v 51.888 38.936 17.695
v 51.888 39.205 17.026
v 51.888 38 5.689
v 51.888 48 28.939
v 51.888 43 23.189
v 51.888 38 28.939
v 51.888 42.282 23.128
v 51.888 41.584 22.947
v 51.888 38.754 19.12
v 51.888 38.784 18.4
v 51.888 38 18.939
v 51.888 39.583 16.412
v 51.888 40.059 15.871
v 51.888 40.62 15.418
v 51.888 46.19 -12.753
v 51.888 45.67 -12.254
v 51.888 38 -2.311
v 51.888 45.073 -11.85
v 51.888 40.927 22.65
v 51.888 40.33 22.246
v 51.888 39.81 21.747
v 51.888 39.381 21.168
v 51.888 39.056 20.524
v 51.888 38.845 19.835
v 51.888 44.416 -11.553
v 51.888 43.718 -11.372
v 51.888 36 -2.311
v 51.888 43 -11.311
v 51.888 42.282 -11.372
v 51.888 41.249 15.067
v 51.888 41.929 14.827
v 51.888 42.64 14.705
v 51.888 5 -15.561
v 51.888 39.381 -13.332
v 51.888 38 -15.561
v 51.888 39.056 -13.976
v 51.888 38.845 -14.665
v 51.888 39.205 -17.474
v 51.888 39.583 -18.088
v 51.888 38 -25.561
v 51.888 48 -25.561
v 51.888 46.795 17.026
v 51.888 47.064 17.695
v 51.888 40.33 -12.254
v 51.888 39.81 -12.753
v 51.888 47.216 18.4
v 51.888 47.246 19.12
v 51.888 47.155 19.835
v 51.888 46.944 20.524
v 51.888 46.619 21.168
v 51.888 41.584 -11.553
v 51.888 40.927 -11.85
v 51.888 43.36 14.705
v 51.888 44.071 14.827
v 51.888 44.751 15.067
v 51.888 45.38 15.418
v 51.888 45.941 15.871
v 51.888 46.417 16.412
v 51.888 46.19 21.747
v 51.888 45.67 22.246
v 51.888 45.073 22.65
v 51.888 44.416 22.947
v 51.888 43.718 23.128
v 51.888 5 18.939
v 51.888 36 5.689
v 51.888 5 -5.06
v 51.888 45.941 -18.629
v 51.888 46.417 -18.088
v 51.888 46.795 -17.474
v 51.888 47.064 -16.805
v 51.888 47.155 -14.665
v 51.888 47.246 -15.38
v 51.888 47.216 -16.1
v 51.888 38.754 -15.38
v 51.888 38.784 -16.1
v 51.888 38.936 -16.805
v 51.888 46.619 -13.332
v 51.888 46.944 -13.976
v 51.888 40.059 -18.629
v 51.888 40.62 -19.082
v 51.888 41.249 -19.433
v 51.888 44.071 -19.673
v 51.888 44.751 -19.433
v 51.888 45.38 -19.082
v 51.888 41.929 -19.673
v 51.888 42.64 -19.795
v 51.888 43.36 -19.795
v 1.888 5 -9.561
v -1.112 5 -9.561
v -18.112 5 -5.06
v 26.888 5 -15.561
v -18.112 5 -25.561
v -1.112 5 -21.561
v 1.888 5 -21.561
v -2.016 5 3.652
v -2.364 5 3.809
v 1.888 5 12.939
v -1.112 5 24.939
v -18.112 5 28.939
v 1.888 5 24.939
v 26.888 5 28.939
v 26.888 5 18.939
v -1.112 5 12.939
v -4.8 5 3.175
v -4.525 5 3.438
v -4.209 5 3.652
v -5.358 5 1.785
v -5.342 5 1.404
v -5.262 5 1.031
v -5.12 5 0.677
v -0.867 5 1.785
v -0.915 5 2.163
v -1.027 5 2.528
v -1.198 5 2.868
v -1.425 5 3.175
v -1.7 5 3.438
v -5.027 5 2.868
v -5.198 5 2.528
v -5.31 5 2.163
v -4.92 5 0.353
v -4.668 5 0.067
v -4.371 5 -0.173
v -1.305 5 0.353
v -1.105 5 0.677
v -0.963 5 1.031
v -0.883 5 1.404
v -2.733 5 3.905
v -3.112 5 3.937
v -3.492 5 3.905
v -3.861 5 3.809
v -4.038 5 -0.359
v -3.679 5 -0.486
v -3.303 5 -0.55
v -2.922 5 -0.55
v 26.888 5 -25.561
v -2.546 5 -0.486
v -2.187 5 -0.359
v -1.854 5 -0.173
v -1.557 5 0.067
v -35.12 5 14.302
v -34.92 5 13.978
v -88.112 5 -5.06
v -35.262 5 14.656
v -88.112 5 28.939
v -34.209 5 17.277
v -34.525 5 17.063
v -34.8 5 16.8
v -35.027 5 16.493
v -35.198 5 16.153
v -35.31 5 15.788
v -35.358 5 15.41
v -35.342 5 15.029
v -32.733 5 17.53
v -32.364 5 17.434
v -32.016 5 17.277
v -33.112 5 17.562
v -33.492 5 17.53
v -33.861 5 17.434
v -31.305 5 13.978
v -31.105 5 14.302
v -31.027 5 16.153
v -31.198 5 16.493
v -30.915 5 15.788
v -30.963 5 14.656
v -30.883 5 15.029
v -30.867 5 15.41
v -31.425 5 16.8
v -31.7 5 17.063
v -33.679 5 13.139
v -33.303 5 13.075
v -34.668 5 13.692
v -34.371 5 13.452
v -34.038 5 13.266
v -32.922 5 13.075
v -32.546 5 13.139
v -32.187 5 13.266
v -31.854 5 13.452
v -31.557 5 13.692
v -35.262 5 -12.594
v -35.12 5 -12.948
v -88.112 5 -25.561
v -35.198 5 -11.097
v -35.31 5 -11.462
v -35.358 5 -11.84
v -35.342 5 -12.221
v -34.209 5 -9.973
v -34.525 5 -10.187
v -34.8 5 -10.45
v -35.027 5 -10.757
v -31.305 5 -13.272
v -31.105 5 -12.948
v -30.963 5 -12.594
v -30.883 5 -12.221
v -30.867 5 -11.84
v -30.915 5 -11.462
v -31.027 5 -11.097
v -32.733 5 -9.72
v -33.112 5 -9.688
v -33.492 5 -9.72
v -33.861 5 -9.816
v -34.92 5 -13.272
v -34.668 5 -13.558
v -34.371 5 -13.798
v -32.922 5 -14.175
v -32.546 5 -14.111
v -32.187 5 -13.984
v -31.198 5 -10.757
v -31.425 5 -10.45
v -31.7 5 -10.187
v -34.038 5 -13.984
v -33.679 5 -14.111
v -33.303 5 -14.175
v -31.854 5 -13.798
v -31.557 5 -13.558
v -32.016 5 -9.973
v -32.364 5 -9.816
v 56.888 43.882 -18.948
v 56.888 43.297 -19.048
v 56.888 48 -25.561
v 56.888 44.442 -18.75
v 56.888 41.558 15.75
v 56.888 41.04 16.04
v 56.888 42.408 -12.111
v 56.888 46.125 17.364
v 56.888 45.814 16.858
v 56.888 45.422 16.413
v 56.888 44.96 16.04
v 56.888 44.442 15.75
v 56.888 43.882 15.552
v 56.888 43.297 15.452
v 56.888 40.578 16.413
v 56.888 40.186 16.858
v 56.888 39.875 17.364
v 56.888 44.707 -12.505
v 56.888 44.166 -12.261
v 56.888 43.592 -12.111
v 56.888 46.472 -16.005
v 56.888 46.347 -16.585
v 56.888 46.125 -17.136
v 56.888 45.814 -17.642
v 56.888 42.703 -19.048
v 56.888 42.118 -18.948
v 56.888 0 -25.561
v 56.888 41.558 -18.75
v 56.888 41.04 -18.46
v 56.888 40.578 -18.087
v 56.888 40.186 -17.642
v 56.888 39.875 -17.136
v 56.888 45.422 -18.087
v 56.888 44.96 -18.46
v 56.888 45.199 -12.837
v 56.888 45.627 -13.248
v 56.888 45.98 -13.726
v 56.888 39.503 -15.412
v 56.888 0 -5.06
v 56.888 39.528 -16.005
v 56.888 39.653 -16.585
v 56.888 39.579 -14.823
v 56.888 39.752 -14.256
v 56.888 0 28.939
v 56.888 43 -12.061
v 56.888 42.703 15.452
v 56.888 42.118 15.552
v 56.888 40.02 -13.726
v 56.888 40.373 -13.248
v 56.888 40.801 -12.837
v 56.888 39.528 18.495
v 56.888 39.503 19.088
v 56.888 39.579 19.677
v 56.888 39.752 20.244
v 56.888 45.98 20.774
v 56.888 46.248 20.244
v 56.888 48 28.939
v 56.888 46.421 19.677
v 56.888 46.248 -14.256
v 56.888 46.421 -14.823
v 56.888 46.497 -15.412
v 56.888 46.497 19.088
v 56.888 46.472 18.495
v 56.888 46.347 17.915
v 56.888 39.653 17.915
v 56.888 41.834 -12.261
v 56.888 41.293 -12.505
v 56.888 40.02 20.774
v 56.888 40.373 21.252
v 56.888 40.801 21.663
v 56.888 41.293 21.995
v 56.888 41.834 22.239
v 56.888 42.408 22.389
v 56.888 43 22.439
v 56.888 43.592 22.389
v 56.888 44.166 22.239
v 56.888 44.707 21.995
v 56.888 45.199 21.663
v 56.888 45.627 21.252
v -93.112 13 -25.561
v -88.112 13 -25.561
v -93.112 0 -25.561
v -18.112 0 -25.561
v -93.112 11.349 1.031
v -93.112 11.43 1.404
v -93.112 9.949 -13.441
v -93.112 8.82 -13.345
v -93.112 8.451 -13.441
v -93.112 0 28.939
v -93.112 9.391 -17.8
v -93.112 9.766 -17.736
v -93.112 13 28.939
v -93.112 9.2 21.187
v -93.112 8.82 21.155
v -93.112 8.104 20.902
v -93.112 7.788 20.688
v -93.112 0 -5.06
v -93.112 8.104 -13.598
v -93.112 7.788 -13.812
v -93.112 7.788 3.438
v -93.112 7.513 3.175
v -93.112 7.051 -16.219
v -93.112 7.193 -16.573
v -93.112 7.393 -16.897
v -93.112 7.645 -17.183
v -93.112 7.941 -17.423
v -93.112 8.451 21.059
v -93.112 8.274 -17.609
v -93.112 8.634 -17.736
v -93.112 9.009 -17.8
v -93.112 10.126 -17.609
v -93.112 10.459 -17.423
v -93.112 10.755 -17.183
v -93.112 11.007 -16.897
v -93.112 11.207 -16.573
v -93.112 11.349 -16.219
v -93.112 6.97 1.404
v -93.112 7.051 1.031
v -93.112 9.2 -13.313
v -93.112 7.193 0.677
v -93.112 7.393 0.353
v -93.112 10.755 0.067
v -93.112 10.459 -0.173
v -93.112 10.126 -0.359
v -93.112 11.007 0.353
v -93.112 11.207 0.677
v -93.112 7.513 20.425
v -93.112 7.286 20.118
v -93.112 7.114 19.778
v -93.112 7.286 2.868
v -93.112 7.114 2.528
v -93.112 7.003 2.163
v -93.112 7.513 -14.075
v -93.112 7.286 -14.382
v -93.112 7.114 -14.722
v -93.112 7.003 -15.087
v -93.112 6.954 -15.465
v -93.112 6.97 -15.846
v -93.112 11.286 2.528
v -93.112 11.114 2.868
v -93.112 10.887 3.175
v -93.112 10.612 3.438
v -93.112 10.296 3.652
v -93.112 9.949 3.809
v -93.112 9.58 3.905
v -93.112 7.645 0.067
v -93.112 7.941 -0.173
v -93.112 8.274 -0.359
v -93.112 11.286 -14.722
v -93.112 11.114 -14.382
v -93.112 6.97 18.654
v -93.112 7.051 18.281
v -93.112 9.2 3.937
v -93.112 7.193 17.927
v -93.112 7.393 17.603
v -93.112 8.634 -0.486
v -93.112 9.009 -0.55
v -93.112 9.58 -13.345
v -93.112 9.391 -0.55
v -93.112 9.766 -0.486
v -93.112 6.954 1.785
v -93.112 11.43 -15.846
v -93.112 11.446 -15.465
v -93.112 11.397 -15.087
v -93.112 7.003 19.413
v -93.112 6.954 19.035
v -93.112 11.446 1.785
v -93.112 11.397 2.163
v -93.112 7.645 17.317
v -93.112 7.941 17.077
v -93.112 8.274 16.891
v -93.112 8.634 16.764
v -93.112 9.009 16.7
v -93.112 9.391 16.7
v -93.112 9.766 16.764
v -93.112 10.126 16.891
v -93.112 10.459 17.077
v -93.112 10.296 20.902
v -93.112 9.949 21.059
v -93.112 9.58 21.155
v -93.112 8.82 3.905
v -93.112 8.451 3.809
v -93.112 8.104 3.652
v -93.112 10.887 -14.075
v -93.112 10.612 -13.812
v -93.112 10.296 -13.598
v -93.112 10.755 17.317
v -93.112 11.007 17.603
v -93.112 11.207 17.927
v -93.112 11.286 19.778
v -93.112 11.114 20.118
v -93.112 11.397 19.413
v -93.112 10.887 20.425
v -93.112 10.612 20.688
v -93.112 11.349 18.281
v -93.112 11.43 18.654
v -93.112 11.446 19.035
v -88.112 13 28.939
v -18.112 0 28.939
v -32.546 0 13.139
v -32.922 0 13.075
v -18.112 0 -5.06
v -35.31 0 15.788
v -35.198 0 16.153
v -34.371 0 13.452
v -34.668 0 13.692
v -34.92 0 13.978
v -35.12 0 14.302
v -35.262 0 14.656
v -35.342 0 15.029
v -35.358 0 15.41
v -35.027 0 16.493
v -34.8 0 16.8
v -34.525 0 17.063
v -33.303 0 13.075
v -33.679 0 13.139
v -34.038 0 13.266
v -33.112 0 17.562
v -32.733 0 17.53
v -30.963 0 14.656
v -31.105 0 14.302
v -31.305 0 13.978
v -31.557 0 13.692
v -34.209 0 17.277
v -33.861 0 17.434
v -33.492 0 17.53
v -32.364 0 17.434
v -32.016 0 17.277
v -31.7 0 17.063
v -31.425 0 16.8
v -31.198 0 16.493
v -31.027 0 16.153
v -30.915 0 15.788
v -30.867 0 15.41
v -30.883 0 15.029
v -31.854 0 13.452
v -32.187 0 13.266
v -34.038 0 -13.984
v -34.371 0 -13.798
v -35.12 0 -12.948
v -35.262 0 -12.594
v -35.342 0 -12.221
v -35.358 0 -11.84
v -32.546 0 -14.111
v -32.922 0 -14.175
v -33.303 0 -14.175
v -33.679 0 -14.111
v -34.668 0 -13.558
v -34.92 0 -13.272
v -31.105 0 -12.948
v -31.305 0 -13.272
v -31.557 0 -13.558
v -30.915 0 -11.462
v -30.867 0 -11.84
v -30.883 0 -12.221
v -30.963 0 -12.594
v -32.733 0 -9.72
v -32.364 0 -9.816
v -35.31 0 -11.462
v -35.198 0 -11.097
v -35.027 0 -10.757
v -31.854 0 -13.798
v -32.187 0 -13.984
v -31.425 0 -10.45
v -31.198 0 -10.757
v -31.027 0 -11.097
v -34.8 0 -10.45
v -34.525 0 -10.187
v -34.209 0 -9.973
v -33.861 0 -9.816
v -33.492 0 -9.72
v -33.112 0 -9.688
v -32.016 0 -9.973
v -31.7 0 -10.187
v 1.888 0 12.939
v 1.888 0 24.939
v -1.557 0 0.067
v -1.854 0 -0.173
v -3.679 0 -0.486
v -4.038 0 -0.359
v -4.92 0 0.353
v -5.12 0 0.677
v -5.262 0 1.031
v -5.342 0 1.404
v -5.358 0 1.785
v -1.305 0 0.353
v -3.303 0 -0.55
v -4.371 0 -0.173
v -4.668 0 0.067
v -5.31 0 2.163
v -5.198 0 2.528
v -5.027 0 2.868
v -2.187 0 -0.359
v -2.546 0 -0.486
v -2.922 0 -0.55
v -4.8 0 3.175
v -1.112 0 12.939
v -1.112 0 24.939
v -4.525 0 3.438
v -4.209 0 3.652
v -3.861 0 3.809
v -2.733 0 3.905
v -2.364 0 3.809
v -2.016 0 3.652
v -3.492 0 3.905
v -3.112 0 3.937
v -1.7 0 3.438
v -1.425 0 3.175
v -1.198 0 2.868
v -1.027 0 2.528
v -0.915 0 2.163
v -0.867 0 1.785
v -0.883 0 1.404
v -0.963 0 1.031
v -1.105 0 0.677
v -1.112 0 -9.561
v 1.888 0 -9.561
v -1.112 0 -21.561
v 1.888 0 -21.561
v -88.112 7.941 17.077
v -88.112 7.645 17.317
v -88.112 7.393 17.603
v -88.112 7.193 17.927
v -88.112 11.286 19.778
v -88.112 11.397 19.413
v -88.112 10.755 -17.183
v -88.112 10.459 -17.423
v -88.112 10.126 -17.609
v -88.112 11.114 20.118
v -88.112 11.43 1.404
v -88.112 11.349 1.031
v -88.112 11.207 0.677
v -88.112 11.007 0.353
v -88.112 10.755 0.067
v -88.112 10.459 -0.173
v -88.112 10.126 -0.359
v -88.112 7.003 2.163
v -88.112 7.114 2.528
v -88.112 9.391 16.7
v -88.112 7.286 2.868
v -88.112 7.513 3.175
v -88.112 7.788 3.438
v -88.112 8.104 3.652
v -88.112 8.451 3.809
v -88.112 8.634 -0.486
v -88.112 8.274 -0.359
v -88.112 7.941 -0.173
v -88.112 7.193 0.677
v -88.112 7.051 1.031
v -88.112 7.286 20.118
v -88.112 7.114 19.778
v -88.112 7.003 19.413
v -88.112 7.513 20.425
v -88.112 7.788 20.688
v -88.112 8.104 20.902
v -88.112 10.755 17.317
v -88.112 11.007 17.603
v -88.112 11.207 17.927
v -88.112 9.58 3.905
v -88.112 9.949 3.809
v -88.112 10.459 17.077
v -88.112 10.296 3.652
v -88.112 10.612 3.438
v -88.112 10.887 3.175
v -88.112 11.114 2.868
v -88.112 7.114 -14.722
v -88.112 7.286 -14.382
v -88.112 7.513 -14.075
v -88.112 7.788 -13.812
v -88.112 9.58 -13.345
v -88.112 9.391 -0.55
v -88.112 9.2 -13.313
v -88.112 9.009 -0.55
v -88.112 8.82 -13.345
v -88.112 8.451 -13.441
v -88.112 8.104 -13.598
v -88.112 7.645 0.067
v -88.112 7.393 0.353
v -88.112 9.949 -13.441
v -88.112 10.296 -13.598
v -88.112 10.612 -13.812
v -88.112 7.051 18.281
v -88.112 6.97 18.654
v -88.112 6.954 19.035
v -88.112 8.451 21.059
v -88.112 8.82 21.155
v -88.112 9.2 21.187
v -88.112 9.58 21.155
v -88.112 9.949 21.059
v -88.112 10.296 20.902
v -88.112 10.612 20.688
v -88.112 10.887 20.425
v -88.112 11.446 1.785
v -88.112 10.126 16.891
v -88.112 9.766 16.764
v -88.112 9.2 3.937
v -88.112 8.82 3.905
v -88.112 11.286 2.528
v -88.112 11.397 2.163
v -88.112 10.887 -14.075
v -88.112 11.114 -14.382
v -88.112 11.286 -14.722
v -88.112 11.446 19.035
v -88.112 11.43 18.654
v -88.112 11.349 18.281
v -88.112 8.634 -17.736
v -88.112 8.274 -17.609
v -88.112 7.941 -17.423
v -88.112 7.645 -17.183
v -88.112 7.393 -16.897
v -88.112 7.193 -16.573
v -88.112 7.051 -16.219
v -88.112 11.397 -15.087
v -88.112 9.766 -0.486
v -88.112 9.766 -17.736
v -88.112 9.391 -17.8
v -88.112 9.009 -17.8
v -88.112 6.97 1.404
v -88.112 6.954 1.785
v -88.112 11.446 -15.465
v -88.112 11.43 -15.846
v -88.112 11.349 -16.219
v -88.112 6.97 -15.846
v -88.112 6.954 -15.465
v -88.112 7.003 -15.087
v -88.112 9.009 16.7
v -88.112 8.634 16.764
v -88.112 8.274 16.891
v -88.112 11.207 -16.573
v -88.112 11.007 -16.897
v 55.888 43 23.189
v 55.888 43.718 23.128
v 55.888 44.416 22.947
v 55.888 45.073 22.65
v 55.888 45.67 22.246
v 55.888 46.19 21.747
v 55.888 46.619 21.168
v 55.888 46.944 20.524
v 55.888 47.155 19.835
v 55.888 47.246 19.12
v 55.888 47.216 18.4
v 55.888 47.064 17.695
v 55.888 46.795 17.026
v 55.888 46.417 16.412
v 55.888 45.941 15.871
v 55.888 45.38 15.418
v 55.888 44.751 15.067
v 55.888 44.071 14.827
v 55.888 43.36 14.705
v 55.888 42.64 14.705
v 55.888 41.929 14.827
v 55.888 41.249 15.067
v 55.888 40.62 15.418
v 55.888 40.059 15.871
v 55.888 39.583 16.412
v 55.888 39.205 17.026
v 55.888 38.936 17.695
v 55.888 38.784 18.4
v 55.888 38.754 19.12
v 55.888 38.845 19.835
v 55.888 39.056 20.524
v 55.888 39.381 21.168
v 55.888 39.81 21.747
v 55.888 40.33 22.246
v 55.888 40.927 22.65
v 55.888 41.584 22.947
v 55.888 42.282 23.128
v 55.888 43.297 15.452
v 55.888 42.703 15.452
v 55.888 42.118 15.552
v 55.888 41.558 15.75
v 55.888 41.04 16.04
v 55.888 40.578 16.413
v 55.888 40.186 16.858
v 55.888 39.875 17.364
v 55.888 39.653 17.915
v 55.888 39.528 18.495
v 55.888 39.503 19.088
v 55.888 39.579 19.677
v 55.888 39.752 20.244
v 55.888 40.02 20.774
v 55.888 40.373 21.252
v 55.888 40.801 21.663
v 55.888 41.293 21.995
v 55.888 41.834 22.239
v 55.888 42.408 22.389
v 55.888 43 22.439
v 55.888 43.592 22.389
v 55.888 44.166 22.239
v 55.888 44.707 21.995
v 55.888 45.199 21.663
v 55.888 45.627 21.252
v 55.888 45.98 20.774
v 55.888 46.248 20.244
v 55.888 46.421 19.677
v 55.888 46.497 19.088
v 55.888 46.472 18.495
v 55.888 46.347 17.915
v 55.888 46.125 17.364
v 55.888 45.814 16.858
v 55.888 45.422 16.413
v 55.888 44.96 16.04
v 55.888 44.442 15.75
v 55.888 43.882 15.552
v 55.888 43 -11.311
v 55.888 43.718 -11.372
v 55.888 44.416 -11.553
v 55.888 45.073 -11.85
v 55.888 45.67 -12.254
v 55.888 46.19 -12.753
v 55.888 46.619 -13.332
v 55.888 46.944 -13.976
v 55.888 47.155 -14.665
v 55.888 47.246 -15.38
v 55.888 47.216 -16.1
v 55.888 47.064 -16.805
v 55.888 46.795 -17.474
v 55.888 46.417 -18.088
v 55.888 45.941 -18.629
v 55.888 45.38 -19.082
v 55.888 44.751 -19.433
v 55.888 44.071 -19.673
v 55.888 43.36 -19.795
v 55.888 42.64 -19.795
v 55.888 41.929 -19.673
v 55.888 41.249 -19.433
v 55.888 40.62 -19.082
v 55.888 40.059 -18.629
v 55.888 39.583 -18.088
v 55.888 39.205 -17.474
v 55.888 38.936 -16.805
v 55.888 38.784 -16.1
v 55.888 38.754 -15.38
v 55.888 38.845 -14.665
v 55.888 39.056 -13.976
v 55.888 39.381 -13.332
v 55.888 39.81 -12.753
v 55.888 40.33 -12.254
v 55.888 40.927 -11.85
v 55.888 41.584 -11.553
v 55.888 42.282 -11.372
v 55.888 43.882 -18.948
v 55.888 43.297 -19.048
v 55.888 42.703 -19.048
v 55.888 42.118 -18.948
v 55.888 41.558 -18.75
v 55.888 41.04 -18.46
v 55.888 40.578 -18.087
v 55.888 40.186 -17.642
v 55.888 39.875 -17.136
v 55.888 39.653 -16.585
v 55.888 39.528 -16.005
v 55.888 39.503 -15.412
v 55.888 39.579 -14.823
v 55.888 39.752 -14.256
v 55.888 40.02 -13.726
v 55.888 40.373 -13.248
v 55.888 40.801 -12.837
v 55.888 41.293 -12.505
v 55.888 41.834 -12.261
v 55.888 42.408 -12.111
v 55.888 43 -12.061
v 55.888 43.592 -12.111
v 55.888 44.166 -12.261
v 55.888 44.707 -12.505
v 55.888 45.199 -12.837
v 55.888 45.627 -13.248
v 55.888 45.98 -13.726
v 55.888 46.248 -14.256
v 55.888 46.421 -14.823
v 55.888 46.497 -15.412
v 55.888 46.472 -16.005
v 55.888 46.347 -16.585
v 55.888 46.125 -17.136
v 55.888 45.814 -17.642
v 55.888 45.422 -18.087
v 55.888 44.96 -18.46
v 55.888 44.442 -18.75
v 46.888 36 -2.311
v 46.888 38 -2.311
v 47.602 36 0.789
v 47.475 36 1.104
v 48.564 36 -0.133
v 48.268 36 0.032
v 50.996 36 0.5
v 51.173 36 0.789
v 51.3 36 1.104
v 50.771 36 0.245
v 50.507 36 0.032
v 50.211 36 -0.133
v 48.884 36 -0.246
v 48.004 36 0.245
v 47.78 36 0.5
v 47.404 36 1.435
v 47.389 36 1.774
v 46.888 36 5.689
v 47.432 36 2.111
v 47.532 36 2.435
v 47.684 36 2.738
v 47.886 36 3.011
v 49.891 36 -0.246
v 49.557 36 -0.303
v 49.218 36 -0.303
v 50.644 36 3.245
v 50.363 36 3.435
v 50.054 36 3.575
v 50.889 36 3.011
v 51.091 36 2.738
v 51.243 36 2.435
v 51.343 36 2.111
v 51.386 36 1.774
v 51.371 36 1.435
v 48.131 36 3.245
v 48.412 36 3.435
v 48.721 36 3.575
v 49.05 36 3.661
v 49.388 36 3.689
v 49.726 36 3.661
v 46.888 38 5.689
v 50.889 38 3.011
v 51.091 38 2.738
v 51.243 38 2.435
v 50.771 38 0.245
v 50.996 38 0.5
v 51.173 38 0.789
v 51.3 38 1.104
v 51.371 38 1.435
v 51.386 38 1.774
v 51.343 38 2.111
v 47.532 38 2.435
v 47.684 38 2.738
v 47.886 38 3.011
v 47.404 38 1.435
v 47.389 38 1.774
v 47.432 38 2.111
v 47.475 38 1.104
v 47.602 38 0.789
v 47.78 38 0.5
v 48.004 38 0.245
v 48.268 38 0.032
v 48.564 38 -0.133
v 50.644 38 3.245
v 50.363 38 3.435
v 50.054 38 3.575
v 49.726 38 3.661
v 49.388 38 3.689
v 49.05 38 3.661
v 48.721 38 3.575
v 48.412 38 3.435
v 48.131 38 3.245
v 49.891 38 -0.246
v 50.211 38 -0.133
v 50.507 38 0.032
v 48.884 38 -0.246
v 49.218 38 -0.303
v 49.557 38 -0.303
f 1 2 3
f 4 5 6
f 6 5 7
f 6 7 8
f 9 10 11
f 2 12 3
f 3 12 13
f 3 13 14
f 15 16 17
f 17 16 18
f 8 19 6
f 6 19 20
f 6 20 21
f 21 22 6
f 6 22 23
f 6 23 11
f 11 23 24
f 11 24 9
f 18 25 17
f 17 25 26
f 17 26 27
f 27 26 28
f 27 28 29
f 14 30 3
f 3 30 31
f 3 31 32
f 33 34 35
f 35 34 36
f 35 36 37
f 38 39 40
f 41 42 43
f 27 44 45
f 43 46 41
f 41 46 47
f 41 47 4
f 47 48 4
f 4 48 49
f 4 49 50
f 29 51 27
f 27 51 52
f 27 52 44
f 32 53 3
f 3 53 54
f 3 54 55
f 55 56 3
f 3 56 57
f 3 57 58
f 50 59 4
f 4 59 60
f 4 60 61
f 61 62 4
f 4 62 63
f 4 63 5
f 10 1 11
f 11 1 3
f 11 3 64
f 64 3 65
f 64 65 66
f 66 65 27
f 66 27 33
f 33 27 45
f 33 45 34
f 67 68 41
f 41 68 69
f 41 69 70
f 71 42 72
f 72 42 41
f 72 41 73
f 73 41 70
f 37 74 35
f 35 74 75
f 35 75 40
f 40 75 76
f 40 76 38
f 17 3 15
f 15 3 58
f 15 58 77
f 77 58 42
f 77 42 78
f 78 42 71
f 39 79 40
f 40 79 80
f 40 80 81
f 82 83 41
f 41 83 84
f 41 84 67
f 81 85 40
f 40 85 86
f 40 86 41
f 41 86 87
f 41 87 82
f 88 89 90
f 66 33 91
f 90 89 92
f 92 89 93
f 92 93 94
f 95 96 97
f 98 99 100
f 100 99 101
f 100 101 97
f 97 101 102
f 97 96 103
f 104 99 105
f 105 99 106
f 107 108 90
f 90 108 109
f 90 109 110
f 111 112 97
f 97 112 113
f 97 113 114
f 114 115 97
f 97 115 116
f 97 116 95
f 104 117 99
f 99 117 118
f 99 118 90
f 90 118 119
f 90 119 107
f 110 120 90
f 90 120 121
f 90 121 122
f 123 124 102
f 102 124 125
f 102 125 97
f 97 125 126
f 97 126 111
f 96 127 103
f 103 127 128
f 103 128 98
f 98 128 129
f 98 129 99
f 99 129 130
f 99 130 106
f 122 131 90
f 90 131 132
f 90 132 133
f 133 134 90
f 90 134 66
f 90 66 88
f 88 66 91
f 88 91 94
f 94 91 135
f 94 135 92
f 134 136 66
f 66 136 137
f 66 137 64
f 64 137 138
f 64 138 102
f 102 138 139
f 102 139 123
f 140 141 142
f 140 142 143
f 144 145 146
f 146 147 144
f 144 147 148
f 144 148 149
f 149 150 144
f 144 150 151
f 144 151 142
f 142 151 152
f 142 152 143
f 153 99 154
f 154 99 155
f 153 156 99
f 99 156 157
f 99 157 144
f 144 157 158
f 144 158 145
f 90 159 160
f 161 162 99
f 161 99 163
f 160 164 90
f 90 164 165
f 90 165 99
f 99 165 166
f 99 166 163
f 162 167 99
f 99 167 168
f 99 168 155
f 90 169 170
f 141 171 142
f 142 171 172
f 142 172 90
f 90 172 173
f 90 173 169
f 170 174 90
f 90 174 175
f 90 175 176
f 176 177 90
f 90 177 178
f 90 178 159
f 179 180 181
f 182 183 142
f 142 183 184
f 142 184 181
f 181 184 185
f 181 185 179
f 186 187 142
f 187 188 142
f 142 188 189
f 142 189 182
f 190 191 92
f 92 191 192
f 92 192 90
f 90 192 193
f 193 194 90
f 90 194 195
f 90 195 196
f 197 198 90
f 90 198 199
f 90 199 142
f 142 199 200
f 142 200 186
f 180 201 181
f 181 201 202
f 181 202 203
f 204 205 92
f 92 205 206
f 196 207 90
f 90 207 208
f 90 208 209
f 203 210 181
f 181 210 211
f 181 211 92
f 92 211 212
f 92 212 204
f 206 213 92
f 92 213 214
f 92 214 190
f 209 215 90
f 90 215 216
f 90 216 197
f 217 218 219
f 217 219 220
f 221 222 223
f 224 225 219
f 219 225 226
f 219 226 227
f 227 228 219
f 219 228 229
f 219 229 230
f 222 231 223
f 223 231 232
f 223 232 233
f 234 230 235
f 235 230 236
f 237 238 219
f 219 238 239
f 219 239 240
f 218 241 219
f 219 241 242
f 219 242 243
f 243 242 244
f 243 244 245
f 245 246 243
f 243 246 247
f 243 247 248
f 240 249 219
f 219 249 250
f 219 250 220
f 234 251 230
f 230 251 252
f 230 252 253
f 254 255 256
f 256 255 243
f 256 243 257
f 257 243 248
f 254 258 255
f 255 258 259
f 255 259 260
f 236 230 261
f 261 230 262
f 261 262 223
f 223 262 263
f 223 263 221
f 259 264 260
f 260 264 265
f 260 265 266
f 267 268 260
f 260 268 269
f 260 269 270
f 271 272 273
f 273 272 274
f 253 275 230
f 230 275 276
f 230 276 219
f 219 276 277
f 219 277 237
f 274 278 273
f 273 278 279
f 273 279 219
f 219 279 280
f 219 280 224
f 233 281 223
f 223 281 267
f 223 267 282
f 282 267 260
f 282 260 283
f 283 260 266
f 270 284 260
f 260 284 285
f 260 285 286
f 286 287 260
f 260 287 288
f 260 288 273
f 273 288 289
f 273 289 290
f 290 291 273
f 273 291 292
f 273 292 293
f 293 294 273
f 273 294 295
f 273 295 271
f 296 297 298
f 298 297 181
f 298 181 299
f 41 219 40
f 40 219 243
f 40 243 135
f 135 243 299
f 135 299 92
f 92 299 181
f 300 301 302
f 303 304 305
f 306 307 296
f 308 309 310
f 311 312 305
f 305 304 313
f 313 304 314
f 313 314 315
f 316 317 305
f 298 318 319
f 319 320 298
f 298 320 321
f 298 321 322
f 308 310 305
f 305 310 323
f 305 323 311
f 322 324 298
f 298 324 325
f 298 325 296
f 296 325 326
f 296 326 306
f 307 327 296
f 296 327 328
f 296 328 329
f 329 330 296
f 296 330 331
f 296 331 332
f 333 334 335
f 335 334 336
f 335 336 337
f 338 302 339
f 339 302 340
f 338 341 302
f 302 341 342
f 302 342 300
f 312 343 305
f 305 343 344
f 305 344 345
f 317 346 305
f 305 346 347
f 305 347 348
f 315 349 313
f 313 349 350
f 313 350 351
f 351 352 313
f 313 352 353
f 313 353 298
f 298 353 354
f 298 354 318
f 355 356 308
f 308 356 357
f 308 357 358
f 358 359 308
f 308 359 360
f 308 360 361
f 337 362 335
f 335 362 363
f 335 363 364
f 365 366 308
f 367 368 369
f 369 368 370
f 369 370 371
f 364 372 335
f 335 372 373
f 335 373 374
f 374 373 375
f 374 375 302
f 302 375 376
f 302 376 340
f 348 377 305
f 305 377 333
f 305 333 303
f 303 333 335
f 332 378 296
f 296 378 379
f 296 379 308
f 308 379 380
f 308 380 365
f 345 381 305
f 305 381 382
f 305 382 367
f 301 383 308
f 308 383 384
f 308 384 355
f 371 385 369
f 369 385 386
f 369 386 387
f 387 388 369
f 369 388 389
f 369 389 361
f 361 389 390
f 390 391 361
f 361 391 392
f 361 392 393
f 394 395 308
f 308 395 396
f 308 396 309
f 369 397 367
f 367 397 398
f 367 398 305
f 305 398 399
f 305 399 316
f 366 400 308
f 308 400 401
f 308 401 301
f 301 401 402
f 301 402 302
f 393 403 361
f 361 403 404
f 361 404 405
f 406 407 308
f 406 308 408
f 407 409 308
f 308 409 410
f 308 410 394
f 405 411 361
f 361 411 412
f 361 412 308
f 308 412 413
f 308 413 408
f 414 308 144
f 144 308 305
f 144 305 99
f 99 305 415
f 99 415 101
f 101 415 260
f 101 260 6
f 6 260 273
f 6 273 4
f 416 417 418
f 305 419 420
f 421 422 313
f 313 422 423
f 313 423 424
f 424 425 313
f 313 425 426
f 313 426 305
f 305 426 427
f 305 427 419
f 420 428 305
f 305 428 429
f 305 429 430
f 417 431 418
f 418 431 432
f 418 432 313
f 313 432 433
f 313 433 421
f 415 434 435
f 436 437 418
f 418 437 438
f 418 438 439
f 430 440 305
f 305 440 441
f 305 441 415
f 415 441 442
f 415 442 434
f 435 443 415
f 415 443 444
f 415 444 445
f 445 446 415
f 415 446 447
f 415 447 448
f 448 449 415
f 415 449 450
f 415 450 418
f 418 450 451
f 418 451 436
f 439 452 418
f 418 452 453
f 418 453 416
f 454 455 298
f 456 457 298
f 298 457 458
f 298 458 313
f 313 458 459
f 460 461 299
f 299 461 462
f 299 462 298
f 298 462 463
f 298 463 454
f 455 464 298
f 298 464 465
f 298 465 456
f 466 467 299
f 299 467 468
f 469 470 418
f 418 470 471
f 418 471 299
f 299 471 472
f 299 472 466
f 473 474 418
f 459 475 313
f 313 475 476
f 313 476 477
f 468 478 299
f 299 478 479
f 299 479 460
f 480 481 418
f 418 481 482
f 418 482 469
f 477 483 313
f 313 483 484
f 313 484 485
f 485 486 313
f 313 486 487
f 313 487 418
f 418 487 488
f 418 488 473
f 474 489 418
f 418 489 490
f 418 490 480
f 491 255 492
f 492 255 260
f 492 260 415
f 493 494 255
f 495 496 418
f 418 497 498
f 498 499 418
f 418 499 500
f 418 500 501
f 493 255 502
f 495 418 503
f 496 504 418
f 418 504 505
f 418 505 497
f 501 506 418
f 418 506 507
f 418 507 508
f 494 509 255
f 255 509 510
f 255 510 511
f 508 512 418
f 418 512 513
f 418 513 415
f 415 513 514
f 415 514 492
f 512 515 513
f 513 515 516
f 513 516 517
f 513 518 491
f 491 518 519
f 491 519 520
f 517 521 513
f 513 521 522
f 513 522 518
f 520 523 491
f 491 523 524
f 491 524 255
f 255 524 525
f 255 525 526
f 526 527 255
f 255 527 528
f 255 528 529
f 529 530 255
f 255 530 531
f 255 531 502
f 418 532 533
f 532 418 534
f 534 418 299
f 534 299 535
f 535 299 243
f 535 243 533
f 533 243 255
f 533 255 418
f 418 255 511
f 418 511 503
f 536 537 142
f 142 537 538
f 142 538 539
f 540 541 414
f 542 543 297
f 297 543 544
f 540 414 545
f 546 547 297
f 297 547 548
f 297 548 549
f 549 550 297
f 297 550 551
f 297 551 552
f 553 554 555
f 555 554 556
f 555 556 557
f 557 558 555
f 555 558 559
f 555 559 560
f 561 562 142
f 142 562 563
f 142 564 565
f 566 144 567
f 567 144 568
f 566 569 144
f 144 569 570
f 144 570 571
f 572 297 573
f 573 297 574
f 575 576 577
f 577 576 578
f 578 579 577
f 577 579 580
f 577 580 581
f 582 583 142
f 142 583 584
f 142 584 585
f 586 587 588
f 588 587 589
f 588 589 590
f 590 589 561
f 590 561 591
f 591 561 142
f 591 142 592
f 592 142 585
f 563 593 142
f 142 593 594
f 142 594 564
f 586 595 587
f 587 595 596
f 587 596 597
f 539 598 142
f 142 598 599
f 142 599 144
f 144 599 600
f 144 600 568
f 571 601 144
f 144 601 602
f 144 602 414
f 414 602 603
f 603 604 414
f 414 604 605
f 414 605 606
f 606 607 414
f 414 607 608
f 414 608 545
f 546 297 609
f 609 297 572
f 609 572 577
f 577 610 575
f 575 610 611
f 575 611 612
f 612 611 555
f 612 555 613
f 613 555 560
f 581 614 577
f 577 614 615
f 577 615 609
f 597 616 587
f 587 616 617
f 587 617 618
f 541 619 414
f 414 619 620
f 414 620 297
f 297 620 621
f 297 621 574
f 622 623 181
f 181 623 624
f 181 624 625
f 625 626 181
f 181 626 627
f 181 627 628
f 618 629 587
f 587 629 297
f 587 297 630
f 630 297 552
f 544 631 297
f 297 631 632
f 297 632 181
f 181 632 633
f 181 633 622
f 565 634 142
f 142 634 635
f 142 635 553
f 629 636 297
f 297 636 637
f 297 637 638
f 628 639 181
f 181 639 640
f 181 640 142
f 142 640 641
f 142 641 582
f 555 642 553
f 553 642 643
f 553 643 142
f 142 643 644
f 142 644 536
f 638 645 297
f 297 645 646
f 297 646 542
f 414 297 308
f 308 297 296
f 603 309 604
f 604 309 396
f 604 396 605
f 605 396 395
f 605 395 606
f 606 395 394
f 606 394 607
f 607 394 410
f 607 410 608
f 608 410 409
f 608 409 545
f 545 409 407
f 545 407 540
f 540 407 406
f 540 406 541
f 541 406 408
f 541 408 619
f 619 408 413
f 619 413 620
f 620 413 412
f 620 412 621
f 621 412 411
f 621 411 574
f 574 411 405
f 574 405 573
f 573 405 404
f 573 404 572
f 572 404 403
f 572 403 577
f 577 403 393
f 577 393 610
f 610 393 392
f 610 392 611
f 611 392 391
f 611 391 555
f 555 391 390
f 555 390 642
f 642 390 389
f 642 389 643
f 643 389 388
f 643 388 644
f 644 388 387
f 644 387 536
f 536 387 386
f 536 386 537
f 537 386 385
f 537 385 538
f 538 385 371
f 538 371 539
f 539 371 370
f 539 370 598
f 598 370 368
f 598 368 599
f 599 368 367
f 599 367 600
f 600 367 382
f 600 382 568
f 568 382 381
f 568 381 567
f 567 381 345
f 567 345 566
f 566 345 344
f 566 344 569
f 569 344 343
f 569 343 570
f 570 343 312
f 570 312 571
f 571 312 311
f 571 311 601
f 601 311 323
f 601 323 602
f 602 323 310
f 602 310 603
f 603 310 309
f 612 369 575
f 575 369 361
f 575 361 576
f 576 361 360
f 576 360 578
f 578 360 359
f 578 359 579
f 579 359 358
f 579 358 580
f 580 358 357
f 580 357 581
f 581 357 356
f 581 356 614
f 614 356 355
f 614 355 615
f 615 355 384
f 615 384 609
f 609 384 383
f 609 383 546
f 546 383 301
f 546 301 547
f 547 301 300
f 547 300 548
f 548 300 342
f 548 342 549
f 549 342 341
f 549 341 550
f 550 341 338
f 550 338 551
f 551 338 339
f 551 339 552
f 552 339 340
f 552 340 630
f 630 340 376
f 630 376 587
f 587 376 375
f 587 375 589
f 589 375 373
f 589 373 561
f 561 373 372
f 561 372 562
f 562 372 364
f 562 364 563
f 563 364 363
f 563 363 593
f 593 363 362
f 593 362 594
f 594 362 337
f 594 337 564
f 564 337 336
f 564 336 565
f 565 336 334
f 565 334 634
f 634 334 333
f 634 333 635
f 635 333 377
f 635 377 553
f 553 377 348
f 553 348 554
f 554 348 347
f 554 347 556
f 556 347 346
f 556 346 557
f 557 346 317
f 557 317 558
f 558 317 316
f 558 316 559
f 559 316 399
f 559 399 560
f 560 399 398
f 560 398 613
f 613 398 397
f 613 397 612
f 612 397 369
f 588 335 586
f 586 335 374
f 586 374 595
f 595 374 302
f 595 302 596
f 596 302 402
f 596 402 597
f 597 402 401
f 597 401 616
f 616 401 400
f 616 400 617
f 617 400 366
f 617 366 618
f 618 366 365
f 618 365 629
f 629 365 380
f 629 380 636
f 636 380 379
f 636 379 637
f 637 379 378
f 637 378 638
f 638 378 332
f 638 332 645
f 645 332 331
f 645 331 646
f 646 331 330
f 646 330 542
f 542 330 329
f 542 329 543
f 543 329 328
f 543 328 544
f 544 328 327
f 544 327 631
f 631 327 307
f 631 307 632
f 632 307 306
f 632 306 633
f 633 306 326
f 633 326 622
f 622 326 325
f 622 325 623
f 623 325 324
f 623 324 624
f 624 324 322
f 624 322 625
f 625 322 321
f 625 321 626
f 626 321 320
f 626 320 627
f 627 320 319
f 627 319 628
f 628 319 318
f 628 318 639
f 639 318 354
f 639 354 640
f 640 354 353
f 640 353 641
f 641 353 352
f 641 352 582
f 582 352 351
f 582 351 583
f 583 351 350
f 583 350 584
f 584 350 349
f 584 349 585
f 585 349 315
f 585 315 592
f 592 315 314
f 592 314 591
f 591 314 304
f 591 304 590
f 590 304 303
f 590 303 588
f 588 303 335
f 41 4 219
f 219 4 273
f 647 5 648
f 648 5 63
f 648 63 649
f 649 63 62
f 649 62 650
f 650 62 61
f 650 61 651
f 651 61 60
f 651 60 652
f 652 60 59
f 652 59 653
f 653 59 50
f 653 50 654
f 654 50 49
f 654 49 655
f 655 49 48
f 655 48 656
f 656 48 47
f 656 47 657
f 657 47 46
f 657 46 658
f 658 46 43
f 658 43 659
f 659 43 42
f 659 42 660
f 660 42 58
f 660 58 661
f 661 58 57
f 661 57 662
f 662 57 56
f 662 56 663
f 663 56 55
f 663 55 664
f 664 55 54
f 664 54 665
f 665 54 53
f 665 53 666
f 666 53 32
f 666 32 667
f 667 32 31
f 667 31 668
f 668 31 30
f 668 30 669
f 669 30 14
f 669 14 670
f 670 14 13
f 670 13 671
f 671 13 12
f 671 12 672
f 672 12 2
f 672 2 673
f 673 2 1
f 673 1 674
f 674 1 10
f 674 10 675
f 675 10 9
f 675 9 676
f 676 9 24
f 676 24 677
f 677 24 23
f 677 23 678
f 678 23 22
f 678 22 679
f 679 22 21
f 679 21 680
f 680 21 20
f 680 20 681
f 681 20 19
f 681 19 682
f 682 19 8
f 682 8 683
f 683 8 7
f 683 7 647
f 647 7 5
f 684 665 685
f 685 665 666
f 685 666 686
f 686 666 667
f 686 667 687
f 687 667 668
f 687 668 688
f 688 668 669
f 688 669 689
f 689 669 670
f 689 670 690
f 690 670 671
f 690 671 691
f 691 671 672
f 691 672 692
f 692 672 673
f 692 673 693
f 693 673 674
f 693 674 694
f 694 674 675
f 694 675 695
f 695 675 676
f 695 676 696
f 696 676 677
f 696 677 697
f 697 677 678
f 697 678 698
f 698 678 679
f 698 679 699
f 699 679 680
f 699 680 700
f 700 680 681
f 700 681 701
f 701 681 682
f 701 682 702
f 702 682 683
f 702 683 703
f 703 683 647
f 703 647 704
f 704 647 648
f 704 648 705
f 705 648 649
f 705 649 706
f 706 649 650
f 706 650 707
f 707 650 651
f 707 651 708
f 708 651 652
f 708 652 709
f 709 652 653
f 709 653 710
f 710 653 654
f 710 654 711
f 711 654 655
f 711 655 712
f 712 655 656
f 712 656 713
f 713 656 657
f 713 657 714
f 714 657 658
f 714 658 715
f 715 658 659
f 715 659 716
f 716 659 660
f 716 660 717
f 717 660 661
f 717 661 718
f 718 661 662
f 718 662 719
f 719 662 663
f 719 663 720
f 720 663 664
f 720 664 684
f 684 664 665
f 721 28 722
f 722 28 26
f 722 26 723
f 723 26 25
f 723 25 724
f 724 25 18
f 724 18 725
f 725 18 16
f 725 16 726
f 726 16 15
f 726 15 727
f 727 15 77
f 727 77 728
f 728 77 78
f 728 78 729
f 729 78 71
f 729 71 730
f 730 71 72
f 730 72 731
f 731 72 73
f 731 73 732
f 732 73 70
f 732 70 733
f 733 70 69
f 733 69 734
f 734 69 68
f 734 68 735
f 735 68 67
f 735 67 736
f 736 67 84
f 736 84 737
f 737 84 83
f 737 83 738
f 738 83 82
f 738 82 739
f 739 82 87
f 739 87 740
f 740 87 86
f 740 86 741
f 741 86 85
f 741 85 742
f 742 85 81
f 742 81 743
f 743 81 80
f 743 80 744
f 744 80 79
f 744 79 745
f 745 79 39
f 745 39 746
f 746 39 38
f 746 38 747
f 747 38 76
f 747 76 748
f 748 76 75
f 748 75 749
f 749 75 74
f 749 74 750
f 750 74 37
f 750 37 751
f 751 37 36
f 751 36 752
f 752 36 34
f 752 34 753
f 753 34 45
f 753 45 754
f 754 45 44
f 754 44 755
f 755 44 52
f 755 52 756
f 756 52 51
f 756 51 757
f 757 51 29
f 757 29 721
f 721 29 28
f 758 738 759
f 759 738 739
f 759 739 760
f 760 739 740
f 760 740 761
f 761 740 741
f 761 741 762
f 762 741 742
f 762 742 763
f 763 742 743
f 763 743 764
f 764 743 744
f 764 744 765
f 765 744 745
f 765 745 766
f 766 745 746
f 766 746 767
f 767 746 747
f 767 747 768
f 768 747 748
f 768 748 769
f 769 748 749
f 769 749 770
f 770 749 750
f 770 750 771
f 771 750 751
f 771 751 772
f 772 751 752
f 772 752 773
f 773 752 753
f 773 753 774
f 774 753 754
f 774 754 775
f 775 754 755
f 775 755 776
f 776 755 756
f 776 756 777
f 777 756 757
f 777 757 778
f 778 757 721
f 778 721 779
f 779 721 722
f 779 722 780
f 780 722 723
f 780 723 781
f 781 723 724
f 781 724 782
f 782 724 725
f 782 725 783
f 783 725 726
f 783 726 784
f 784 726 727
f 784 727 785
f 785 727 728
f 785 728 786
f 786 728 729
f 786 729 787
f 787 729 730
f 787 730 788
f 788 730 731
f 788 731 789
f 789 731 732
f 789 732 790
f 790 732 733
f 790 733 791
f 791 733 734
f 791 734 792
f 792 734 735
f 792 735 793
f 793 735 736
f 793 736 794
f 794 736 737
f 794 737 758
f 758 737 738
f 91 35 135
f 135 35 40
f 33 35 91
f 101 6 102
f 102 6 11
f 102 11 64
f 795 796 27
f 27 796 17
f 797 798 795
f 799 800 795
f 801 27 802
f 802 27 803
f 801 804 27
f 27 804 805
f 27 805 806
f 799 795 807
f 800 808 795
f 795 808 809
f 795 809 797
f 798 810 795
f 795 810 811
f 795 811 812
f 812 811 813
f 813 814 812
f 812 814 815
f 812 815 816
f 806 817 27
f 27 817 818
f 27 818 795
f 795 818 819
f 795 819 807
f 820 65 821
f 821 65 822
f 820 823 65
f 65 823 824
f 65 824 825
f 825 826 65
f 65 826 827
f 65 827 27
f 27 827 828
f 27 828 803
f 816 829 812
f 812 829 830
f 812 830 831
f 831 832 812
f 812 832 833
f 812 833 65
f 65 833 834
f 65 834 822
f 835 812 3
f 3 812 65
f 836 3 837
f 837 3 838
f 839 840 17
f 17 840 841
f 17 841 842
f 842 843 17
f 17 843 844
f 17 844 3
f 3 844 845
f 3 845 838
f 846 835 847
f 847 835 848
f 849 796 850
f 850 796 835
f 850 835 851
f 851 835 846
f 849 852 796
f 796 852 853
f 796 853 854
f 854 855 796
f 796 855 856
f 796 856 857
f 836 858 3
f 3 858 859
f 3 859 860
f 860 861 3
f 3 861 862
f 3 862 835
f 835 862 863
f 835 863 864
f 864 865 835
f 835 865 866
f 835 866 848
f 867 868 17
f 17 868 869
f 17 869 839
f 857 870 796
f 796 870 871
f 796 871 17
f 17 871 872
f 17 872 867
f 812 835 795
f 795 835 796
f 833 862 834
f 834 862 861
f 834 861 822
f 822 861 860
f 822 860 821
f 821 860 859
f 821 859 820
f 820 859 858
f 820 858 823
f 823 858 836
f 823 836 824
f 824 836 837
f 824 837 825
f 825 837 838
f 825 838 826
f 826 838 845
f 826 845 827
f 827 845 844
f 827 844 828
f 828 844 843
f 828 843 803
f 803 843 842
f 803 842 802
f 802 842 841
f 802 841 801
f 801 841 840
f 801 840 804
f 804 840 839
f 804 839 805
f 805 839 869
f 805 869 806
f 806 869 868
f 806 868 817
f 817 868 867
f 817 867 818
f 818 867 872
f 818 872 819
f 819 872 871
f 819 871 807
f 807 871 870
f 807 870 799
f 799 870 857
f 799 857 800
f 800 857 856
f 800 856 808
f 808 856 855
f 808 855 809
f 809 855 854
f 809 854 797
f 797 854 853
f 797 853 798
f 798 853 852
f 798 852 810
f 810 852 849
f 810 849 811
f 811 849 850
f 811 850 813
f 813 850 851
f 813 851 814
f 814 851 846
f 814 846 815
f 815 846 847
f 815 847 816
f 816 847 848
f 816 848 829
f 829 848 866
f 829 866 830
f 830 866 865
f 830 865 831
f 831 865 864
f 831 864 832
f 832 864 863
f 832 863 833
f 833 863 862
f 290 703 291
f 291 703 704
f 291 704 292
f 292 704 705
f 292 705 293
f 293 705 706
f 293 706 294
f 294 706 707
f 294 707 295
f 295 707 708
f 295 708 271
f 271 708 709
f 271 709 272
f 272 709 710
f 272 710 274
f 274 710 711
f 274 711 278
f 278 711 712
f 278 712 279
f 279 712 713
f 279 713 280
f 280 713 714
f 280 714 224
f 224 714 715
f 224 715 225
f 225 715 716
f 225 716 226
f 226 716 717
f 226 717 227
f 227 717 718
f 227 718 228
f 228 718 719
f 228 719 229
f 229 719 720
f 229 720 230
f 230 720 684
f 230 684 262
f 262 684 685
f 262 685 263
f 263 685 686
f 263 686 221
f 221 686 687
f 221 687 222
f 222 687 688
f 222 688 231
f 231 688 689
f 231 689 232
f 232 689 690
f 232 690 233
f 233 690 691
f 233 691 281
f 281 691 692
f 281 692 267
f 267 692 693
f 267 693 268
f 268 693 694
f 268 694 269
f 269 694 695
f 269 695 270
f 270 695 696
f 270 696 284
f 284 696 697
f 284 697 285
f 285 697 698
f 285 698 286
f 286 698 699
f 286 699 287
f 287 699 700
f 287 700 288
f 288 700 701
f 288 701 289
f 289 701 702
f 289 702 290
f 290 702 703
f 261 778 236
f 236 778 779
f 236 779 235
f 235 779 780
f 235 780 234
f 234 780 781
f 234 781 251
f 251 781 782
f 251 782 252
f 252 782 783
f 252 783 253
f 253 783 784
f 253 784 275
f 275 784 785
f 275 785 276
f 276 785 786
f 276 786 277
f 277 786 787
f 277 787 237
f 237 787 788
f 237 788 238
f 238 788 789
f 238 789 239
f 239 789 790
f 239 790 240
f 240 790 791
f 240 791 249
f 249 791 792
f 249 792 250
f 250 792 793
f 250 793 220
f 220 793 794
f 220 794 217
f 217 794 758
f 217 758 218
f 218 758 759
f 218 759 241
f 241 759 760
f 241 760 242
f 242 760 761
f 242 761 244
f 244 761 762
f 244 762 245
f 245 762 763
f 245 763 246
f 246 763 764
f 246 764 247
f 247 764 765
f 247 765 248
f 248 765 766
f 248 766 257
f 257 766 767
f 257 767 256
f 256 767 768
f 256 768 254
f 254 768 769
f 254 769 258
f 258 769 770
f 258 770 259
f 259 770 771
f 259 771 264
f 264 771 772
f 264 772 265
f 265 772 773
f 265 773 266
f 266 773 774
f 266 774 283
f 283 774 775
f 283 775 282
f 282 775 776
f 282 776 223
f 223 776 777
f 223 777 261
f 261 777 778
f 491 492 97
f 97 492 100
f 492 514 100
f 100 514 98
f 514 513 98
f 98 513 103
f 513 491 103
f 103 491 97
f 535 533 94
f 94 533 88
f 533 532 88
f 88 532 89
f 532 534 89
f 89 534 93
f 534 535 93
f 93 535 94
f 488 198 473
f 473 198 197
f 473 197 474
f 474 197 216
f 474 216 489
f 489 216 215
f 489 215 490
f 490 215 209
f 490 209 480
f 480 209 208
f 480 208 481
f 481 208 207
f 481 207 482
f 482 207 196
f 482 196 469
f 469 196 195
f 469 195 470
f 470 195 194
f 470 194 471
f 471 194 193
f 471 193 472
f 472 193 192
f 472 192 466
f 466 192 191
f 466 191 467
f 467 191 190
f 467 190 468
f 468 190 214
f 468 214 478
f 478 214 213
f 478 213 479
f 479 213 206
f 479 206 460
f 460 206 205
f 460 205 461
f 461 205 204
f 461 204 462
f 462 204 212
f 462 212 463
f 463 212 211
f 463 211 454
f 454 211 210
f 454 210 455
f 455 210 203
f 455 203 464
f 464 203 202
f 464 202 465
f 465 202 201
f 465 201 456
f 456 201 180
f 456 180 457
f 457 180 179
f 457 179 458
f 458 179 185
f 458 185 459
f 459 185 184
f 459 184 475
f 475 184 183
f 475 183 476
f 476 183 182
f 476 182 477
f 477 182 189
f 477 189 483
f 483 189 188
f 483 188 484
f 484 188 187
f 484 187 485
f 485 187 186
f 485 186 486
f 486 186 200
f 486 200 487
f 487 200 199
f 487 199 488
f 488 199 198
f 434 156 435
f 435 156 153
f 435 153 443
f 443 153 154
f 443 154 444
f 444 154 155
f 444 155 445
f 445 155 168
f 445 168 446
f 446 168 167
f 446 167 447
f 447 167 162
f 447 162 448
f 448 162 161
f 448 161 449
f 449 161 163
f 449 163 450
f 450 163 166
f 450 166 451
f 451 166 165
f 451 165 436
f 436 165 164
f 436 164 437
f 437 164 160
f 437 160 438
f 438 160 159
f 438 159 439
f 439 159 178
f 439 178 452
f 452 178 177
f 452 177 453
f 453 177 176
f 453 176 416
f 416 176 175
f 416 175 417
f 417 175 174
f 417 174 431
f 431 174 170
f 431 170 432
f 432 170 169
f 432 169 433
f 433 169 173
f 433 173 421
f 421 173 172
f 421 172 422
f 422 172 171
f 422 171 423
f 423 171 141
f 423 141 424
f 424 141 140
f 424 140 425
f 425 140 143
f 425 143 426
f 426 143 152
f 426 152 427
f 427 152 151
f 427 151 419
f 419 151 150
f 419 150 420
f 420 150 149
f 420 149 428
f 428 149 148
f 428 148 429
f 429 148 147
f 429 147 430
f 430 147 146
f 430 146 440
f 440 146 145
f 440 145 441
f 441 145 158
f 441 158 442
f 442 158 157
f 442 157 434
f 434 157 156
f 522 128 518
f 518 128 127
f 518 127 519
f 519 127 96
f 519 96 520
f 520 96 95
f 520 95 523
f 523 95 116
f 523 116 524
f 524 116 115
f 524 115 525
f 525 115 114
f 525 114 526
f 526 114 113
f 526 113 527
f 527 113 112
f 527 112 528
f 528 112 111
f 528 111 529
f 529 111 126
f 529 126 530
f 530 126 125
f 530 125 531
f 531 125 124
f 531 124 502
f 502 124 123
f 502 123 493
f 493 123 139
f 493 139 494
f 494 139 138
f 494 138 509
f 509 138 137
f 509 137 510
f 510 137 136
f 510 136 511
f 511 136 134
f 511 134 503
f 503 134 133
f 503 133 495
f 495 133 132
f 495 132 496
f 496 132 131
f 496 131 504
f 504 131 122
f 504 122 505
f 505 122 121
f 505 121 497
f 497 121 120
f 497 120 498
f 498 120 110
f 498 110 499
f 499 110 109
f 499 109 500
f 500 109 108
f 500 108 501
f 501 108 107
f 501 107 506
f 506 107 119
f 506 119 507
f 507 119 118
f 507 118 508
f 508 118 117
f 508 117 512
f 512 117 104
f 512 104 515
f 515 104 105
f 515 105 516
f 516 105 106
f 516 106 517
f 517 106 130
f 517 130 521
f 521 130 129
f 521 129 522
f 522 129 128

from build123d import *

# Parameters (mm, degrees)
SKETCH1_W                 = 150
SKETCH1_H                 = 54.5
BOSS_EXTRUDE1_DEPTH       = 5
SKETCH2_W                 = 5
SKETCH2_H                 = 54.5
BOSS_EXTRUDE2_DEPTH       = 8
F_8_CLEARANCE_HOLE1_D     = 4.4958
F_8_CLEARANCE_HOLE1_DEPTH = 17
F_8_CLEARANCE_HOLE1_TIP   = 1.350674586
SKETCH7_W                 = 5
SKETCH7_H                 = 54.5
BOSS_EXTRUDE3_DEPTH       = 43
SKETCH8_R                 = 4.25
CUT_EXTRUDE1_DEPTH        = 4
RIB1_REACH                = 120.085
SKETCH10_WALL_W           = 279.571445908
SKETCH10_WALL_H           = 10
RIB3_REACH                = 120.085
SKETCH12_WALL_W           = 279.571445908
SKETCH12_WALL_H           = 10
SKETCH13_W                = 8
SKETCH13_H                = 2
BOSS_EXTRUDE4_DEPTH       = 5
SKETCH14_R                = 2
CUT_EXTRUDE2_DEPTH        = 2
SKETCH15_R                = 3.5
CUT_EXTRUDE3_DEPTH        = 1
SKETCH16_W                = 3
SKETCH16_H                = 12
CUT_EXTRUDE4_DEPTH        = 5
F_8_CLEARANCE_HOLE2_D     = 4.4958
F_8_CLEARANCE_HOLE2_DEPTH = 17
F_8_CLEARANCE_HOLE2_TIP   = 1.350674586


with BuildPart() as part:
    # Sketch1 → Boss-Extrude1 (new body)
    with BuildSketch(Plane(origin=(0, 0, 0), x_dir=(1, 0, 0), z_dir=(0, 1, 0))):
        with Locations((-18.112463826, -1.689393939)):
            Rectangle(SKETCH1_W, SKETCH1_H)
    extrude(amount=BOSS_EXTRUDE1_DEPTH)

    # Sketch2 → Boss-Extrude2 (add)
    with BuildSketch(Plane(origin=(0, 5, 0), x_dir=(1, 0, 0), z_dir=(0, 1, 0))):
        with Locations((-90.612463826, -1.689393939)):
            Rectangle(SKETCH2_W, SKETCH2_H)
    extrude(amount=BOSS_EXTRUDE2_DEPTH)

    # #8 Clearance Hole1
    with Locations(Plane(origin=(-93.112463826, 9.2, -15.560606061), x_dir=(0, 0, -1), z_dir=(-1, 0, 0))):
        with Locations((0, 0), (-17.25, 0), (-34.5, 0)):
            Hole(F_8_CLEARANCE_HOLE1_D / 2, depth=F_8_CLEARANCE_HOLE1_DEPTH)
            with Locations((0, 0, -(F_8_CLEARANCE_HOLE1_DEPTH + F_8_CLEARANCE_HOLE1_TIP / 2))):  # 118° drill point
                Cone(0, F_8_CLEARANCE_HOLE1_D / 2, F_8_CLEARANCE_HOLE1_TIP, mode=Mode.SUBTRACT)

    # Sketch7 → Boss-Extrude3 (add)
    with BuildSketch(Plane(origin=(0, 5, 0), x_dir=(1, 0, 0), z_dir=(0, 1, 0))):
        with Locations((54.387536174, -1.689393939)):
            Rectangle(SKETCH7_W, SKETCH7_H)
    extrude(amount=BOSS_EXTRUDE3_DEPTH)

    # Sketch8 → Cut-Extrude1 (cut)
    with BuildSketch(Plane.ZY.offset(-51.887536174)):
        with Locations((-15.560606061, 43)):
            Circle(SKETCH8_R)
        with Locations((18.939393939, 43)):
            Circle(SKETCH8_R)
    extrude(amount=-CUT_EXTRUDE1_DEPTH, mode=Mode.SUBTRACT)

    # Sketch10 wall → Rib1 (add, up to next)
    with BuildSketch(Plane(origin=(39.387536174, 21.5, -25.560606061), x_dir=(-0.603857687995, -0.797092148154, 0), z_dir=(-0.797092148154, 0.603857687995, 0)), mode=Mode.PRIVATE) as rib1_sk1:
        with Locations((0, 5)):
            Rectangle(SKETCH10_WALL_W, SKETCH10_WALL_H)
    rib1_tool1 = extrude(rib1_sk1.sketch, amount=-RIB1_REACH, mode=Mode.PRIVATE) - part.part
    add(rib1_tool1.solids().sort_by_distance((39.387536174, 21.5, -25.560606061))[0])

    # Sketch12 wall → Rib3 (add, up to next)
    with BuildSketch(Plane(origin=(39.387536174, 21.5, 28.939393939), x_dir=(-0.603857687995, -0.797092148154, 0), z_dir=(0.797092148154, -0.603857687995, 0)), mode=Mode.PRIVATE) as rib3_sk1:
        with Locations((0, 5)):
            Rectangle(SKETCH12_WALL_W, SKETCH12_WALL_H)
    rib3_tool1 = extrude(rib3_sk1.sketch, amount=RIB3_REACH, mode=Mode.PRIVATE) - part.part
    add(rib3_tool1.solids().sort_by_distance((39.387536174, 21.5, 28.939393939))[0])

    # Sketch13 → Boss-Extrude4 (add)
    with BuildSketch(Plane.ZY.offset(-51.887536174)):
        with Locations((1.689393939, 37)):
            Rectangle(SKETCH13_W, SKETCH13_H)
    extrude(amount=BOSS_EXTRUDE4_DEPTH)

    # Sketch14 → Cut-Extrude2 (cut)
    with BuildSketch(Plane(origin=(0, 38, 0), x_dir=(1, 0, 0), z_dir=(0, 1, 0))):
        with Locations(Location((49.387536174, -1.689393939, 0), (0, 0, 270))):
            Circle(SKETCH14_R)
    extrude(amount=-CUT_EXTRUDE2_DEPTH, mode=Mode.SUBTRACT)

    # Sketch15 → Cut-Extrude3 (cut)
    with BuildSketch(Plane.ZY.offset(-55.887536174)):
        with Locations((-15.560606061, 43)):
            Circle(SKETCH15_R)
        with Locations((18.939393939, 43)):
            Circle(SKETCH15_R)
    extrude(amount=-CUT_EXTRUDE3_DEPTH, mode=Mode.SUBTRACT)

    # Sketch16 → Cut-Extrude4 (cut)
    with BuildSketch(Plane(origin=(0, 5, 0), x_dir=(1, 0, 0), z_dir=(0, 1, 0))):
        with Locations((0.387536174, 15.560606061)):
            Rectangle(SKETCH16_W, SKETCH16_H)
        with Locations((0.387536174, -18.939393939)):
            Rectangle(SKETCH16_W, SKETCH16_H)
    extrude(amount=-CUT_EXTRUDE4_DEPTH, mode=Mode.SUBTRACT)

    # #8 Clearance Hole2
    with Locations(Plane(origin=(-3.112463826, 5, 1.689393939), x_dir=(0, 0, 1), z_dir=(0, 1, 0))):
        with Locations((0, 0), (13.625, -30), (-13.625, -30)):
            Hole(F_8_CLEARANCE_HOLE2_D / 2, depth=F_8_CLEARANCE_HOLE2_DEPTH)
            with Locations((0, 0, -(F_8_CLEARANCE_HOLE2_DEPTH + F_8_CLEARANCE_HOLE2_TIP / 2))):  # 118° drill point
                Cone(0, F_8_CLEARANCE_HOLE2_D / 2, F_8_CLEARANCE_HOLE2_TIP, mode=Mode.SUBTRACT)


solid = part.part
